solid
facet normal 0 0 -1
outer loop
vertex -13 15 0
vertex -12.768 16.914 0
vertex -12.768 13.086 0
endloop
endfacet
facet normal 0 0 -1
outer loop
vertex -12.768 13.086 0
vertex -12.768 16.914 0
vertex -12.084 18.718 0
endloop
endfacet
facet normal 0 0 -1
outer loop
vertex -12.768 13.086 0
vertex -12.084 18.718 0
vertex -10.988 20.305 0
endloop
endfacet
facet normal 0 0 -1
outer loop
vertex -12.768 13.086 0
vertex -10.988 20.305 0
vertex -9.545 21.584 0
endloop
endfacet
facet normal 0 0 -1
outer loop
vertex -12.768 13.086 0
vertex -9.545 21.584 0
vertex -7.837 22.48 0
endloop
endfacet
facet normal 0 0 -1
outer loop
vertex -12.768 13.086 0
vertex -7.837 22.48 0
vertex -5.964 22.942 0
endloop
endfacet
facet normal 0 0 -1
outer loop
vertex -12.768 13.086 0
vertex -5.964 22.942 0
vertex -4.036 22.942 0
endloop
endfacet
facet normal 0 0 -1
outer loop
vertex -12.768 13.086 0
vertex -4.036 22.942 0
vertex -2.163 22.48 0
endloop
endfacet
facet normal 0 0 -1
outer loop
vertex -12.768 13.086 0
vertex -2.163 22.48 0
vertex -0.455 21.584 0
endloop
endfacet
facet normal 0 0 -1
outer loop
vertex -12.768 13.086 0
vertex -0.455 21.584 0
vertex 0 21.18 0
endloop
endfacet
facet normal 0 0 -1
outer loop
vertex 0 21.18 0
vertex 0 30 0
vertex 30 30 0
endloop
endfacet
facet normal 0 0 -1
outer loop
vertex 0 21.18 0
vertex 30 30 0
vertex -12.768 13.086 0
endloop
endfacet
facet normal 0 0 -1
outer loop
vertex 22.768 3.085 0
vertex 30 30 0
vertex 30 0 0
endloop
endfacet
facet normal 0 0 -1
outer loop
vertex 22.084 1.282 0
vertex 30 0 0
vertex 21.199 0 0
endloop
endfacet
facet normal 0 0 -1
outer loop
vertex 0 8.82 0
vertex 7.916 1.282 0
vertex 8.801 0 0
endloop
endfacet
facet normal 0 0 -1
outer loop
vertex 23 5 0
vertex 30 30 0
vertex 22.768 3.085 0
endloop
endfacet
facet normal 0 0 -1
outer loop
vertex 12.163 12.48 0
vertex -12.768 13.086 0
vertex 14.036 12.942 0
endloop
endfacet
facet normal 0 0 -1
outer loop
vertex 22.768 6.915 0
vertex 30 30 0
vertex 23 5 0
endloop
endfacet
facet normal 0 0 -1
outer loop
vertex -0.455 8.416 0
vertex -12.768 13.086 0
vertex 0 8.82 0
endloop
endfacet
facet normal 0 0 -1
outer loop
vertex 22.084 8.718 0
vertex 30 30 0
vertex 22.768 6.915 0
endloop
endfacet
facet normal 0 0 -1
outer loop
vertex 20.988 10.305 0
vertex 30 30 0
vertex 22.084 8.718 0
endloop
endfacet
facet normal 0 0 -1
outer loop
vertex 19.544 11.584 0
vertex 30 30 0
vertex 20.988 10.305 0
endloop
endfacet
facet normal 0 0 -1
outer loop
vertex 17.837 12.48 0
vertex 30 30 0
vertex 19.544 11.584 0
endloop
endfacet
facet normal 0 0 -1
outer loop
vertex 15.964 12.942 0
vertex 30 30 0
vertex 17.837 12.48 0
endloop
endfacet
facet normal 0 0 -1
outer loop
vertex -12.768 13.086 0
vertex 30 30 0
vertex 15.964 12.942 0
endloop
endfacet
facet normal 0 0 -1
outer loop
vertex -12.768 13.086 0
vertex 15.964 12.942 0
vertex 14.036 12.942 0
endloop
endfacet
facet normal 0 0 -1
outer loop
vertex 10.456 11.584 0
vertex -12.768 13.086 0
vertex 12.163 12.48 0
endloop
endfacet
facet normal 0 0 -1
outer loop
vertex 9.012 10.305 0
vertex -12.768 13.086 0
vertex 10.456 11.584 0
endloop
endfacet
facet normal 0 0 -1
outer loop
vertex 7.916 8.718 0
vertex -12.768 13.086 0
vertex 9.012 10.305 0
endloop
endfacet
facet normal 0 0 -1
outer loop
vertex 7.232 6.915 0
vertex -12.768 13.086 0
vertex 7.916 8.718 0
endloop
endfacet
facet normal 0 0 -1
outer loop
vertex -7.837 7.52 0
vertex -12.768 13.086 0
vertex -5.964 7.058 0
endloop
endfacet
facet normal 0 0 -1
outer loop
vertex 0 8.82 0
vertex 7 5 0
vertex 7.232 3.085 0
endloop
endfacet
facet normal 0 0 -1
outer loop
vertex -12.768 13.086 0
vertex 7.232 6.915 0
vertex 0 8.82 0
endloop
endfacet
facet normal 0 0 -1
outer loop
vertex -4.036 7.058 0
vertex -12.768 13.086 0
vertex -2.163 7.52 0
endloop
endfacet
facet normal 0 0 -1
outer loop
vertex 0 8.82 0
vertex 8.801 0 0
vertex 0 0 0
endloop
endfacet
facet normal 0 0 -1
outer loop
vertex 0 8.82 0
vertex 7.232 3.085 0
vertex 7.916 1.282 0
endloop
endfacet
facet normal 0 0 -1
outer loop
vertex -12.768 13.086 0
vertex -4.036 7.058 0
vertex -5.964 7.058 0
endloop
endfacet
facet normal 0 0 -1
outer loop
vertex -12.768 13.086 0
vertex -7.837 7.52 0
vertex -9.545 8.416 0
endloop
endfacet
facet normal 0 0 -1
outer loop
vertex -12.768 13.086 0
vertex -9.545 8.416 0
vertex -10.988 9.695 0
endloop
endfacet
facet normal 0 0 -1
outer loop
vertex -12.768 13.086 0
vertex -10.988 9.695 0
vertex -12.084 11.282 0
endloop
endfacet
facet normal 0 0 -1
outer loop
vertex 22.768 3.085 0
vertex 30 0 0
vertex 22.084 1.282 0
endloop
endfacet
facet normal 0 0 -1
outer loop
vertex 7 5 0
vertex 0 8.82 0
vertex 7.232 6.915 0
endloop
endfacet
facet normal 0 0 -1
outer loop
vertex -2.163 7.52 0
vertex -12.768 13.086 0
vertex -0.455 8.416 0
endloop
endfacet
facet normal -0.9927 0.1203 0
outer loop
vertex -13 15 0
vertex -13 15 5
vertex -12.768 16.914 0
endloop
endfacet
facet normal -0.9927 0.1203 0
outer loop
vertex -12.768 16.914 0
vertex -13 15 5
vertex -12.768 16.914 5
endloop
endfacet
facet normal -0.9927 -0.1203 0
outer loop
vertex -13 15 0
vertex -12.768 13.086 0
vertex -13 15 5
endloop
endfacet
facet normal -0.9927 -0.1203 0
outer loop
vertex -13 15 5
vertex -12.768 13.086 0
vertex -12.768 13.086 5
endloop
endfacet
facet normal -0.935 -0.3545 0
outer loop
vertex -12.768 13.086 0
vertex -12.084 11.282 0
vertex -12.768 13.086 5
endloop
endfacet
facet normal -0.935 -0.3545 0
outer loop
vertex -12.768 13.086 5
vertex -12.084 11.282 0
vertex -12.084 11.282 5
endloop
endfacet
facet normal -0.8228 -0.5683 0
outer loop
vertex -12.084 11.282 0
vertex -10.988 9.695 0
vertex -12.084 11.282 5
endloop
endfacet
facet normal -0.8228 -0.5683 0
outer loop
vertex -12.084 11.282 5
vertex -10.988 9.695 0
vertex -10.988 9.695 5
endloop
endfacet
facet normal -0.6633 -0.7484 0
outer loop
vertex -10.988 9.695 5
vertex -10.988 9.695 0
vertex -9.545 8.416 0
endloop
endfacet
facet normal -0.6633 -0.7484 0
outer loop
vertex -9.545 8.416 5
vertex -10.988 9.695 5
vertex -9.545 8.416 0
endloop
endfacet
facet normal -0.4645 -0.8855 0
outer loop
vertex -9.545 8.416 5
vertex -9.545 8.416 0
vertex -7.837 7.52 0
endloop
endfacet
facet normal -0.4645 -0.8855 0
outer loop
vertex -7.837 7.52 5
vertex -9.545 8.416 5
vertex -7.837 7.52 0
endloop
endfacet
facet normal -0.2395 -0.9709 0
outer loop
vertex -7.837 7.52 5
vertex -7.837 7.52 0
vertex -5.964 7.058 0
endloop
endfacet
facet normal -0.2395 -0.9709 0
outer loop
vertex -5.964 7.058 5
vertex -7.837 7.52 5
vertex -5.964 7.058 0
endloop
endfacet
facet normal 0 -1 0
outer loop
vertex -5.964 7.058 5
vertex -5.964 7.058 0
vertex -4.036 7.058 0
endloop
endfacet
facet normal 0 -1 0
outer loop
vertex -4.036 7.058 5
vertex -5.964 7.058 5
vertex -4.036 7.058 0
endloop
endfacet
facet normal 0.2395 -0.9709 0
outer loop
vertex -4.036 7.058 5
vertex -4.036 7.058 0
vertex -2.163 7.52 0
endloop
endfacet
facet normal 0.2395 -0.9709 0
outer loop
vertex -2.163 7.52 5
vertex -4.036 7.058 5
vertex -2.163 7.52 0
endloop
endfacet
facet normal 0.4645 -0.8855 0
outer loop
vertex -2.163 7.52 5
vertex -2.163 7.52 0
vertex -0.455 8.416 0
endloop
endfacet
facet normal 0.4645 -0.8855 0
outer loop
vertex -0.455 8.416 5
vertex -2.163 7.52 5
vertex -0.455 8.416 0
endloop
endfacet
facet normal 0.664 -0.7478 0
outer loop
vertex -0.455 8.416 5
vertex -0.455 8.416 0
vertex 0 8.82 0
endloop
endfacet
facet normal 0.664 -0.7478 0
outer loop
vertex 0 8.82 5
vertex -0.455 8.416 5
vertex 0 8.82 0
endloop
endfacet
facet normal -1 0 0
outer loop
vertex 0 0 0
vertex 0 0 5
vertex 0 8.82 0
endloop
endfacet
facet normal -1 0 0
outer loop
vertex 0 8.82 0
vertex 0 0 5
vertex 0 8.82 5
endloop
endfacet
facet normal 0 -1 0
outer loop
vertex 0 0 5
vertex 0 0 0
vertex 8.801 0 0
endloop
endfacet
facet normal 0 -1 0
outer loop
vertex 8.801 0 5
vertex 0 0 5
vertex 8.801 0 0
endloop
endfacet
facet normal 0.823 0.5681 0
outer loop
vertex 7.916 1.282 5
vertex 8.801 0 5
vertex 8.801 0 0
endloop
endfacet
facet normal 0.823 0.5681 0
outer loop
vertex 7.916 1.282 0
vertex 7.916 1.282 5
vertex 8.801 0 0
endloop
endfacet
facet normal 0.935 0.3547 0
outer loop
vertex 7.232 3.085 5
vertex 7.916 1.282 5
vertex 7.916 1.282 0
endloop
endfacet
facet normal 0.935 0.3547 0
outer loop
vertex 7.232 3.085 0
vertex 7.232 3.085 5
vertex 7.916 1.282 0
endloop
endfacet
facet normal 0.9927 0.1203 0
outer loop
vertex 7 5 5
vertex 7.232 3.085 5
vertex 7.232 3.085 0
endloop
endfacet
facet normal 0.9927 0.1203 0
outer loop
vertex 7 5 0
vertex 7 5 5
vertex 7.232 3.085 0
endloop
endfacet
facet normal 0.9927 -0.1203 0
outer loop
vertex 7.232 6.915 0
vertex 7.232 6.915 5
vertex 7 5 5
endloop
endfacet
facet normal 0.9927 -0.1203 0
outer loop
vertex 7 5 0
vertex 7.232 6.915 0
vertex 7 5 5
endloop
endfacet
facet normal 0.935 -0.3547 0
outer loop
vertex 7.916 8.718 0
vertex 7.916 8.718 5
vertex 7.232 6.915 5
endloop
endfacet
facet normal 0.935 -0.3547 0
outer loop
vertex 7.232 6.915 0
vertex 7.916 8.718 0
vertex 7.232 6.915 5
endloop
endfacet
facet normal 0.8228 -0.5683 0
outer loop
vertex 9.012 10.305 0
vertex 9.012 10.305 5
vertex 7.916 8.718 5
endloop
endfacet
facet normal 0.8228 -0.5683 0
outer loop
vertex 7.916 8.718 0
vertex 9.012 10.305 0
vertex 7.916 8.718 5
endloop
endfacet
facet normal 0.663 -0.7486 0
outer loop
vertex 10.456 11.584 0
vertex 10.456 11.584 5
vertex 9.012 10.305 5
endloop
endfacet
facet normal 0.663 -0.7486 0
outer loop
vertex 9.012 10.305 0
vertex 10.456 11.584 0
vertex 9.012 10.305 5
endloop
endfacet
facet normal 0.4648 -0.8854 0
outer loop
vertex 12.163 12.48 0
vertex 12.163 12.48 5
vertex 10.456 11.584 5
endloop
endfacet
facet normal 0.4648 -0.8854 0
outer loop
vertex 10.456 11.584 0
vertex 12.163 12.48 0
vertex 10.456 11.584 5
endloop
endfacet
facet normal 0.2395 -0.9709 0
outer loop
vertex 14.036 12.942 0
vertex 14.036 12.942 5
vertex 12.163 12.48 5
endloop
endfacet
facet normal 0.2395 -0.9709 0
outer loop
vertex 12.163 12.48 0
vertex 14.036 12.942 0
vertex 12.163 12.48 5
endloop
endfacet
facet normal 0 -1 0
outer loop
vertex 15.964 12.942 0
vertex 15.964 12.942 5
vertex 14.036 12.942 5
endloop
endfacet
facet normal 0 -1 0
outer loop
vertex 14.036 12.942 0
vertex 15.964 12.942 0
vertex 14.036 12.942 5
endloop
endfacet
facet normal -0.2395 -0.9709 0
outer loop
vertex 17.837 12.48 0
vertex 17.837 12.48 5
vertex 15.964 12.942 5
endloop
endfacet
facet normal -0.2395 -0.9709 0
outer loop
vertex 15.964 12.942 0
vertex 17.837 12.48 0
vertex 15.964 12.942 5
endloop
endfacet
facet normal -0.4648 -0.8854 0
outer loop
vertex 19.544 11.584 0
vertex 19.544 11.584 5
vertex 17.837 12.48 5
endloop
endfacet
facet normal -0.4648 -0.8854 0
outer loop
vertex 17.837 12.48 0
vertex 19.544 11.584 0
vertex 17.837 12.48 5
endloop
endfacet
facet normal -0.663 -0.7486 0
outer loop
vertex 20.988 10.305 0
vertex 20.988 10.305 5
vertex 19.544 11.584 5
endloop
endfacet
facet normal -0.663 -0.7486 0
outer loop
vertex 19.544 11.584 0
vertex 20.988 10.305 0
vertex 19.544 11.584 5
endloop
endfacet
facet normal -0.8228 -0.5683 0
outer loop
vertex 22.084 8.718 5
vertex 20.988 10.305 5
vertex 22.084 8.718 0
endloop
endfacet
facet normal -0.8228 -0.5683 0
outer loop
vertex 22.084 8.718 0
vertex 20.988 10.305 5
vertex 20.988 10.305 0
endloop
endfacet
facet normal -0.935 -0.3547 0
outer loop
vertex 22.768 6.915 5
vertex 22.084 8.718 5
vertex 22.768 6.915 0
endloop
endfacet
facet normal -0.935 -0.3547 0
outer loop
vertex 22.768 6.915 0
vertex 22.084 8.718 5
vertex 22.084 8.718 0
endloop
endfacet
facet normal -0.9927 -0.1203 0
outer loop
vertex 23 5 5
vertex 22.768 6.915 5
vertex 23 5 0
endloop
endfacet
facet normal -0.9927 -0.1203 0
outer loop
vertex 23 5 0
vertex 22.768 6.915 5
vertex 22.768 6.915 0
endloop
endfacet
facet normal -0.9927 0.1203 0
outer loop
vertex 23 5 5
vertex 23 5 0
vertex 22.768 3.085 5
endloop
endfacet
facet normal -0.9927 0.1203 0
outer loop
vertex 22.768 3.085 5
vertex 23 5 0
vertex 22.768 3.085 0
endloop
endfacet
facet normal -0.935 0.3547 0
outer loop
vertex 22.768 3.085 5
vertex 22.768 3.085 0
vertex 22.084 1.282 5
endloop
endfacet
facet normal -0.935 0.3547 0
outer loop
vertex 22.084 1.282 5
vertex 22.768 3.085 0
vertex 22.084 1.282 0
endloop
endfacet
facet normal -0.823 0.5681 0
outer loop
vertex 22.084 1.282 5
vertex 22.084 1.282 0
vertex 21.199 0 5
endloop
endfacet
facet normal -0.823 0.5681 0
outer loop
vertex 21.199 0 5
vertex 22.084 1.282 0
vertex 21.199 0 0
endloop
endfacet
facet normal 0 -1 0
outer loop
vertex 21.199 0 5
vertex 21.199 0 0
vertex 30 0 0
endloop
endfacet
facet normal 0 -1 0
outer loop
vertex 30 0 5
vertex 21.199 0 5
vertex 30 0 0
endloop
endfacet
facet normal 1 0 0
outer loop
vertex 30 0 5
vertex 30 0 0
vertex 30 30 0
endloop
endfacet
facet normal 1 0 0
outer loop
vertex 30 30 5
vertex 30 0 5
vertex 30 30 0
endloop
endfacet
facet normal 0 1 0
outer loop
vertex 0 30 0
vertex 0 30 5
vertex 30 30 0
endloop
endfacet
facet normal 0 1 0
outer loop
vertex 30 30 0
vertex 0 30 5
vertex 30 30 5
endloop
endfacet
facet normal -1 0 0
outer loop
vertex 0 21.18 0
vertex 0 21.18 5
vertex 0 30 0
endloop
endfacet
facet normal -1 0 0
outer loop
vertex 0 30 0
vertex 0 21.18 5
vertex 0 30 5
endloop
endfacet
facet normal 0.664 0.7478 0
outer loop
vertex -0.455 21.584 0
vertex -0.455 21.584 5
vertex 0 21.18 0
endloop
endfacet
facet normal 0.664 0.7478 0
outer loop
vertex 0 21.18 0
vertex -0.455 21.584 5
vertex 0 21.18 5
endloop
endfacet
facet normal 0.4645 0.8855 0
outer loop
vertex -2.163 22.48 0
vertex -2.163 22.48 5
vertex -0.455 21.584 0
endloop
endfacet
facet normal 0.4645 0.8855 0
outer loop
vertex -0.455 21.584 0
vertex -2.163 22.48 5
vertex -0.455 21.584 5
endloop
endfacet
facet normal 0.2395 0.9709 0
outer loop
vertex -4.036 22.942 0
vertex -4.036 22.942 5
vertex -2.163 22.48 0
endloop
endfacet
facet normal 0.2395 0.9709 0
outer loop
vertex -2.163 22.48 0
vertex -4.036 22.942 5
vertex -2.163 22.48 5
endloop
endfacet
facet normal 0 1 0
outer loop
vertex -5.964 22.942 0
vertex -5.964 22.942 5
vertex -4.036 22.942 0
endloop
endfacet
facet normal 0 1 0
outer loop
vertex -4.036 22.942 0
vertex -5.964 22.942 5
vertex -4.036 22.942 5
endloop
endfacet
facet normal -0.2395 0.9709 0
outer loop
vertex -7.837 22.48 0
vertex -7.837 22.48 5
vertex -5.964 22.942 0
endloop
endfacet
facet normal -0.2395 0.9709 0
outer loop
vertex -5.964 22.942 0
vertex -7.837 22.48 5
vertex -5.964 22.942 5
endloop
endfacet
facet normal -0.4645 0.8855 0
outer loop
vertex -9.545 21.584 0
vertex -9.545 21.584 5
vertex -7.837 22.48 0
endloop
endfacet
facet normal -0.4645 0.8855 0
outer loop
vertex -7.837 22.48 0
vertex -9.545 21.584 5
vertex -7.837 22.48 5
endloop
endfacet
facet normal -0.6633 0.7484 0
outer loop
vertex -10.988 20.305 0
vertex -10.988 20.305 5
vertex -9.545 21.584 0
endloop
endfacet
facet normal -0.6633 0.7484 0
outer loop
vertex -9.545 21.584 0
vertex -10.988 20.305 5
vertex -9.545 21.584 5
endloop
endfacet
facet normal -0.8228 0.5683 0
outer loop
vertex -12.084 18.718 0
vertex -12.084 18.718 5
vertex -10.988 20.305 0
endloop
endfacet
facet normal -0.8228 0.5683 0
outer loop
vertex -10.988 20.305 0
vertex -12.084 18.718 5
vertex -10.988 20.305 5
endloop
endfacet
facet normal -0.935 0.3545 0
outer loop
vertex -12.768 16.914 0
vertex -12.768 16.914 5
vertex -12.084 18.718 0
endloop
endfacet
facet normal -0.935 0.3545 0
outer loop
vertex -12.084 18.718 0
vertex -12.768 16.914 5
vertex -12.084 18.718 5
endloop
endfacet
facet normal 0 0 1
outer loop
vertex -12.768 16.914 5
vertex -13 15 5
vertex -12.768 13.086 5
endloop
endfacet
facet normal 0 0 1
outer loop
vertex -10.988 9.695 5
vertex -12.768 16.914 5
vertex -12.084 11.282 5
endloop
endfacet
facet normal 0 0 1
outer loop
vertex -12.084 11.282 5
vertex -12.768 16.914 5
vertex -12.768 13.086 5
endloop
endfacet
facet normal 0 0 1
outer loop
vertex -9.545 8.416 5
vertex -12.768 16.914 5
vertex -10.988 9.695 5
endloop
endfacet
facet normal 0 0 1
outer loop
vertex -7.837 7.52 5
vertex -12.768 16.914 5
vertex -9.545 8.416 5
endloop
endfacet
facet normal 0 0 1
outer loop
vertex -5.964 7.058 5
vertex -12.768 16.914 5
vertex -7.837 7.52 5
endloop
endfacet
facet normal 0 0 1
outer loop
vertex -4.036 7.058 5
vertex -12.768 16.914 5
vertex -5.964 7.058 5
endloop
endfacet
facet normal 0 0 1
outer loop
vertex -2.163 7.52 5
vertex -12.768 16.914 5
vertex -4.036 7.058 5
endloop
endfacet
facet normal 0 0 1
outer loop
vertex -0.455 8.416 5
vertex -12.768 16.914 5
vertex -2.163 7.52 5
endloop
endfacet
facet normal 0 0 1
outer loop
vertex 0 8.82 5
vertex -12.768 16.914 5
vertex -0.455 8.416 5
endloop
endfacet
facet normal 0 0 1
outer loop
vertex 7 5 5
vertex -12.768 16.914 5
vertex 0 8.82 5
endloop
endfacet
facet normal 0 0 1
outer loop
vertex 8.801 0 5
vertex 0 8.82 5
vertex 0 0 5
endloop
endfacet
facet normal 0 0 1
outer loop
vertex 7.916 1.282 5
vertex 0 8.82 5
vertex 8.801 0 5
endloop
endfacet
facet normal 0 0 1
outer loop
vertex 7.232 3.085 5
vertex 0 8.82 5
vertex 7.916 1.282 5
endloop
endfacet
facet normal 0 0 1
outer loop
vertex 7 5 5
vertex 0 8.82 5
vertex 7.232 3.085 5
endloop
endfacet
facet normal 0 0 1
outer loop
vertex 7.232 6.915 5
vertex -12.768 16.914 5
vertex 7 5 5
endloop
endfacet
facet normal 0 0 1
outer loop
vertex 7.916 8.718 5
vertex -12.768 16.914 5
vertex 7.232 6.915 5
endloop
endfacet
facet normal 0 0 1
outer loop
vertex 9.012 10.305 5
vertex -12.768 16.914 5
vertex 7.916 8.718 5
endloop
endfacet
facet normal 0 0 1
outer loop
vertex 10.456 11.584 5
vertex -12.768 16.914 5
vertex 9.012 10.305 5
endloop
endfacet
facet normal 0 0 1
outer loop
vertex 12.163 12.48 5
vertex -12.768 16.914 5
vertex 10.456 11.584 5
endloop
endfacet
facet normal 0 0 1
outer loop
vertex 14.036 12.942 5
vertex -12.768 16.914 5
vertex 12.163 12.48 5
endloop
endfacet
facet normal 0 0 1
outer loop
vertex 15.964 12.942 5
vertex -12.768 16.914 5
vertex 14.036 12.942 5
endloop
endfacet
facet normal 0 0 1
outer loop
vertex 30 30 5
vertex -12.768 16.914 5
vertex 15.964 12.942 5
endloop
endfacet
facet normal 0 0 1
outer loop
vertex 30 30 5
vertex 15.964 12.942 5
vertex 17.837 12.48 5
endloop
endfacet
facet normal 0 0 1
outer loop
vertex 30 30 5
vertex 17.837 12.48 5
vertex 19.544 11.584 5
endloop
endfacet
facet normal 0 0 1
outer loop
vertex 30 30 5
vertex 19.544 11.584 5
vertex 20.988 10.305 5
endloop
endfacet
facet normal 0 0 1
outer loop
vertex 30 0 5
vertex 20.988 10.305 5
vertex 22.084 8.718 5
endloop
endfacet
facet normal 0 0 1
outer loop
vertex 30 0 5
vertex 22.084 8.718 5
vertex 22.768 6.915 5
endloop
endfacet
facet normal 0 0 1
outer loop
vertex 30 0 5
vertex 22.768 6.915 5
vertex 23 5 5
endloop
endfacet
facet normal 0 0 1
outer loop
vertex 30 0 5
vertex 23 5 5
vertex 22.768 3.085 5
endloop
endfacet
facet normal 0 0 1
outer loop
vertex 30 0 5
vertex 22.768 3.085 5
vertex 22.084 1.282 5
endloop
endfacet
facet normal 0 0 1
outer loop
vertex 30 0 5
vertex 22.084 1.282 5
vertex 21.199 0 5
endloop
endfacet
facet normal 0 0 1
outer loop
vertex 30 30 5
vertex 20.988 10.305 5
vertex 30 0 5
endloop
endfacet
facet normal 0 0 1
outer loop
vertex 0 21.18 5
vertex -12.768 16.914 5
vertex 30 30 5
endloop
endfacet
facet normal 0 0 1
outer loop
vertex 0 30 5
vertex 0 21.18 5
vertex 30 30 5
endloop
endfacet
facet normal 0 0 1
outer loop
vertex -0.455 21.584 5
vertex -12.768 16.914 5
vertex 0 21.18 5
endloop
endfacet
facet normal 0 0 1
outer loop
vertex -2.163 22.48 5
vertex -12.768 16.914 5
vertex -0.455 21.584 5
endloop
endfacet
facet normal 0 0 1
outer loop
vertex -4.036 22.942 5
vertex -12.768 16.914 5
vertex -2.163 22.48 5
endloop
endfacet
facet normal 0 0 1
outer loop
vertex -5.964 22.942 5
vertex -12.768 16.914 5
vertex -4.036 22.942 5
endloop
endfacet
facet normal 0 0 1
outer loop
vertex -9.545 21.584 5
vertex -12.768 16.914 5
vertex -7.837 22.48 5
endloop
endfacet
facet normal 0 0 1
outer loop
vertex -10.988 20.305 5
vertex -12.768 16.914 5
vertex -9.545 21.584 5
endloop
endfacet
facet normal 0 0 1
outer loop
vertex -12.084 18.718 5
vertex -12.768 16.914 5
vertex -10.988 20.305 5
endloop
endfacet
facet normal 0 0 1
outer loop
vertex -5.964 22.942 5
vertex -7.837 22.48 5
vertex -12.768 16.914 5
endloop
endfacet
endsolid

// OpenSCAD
//SODA LABS 25.07.2014 Loguncov Maxim
//4 штуки

difference(){
cube([30,30,5,]);
translate([15,5,0])
cylinder(6,8,8);
}
translate([-5,15,0])
cylinder(5,8,8);
